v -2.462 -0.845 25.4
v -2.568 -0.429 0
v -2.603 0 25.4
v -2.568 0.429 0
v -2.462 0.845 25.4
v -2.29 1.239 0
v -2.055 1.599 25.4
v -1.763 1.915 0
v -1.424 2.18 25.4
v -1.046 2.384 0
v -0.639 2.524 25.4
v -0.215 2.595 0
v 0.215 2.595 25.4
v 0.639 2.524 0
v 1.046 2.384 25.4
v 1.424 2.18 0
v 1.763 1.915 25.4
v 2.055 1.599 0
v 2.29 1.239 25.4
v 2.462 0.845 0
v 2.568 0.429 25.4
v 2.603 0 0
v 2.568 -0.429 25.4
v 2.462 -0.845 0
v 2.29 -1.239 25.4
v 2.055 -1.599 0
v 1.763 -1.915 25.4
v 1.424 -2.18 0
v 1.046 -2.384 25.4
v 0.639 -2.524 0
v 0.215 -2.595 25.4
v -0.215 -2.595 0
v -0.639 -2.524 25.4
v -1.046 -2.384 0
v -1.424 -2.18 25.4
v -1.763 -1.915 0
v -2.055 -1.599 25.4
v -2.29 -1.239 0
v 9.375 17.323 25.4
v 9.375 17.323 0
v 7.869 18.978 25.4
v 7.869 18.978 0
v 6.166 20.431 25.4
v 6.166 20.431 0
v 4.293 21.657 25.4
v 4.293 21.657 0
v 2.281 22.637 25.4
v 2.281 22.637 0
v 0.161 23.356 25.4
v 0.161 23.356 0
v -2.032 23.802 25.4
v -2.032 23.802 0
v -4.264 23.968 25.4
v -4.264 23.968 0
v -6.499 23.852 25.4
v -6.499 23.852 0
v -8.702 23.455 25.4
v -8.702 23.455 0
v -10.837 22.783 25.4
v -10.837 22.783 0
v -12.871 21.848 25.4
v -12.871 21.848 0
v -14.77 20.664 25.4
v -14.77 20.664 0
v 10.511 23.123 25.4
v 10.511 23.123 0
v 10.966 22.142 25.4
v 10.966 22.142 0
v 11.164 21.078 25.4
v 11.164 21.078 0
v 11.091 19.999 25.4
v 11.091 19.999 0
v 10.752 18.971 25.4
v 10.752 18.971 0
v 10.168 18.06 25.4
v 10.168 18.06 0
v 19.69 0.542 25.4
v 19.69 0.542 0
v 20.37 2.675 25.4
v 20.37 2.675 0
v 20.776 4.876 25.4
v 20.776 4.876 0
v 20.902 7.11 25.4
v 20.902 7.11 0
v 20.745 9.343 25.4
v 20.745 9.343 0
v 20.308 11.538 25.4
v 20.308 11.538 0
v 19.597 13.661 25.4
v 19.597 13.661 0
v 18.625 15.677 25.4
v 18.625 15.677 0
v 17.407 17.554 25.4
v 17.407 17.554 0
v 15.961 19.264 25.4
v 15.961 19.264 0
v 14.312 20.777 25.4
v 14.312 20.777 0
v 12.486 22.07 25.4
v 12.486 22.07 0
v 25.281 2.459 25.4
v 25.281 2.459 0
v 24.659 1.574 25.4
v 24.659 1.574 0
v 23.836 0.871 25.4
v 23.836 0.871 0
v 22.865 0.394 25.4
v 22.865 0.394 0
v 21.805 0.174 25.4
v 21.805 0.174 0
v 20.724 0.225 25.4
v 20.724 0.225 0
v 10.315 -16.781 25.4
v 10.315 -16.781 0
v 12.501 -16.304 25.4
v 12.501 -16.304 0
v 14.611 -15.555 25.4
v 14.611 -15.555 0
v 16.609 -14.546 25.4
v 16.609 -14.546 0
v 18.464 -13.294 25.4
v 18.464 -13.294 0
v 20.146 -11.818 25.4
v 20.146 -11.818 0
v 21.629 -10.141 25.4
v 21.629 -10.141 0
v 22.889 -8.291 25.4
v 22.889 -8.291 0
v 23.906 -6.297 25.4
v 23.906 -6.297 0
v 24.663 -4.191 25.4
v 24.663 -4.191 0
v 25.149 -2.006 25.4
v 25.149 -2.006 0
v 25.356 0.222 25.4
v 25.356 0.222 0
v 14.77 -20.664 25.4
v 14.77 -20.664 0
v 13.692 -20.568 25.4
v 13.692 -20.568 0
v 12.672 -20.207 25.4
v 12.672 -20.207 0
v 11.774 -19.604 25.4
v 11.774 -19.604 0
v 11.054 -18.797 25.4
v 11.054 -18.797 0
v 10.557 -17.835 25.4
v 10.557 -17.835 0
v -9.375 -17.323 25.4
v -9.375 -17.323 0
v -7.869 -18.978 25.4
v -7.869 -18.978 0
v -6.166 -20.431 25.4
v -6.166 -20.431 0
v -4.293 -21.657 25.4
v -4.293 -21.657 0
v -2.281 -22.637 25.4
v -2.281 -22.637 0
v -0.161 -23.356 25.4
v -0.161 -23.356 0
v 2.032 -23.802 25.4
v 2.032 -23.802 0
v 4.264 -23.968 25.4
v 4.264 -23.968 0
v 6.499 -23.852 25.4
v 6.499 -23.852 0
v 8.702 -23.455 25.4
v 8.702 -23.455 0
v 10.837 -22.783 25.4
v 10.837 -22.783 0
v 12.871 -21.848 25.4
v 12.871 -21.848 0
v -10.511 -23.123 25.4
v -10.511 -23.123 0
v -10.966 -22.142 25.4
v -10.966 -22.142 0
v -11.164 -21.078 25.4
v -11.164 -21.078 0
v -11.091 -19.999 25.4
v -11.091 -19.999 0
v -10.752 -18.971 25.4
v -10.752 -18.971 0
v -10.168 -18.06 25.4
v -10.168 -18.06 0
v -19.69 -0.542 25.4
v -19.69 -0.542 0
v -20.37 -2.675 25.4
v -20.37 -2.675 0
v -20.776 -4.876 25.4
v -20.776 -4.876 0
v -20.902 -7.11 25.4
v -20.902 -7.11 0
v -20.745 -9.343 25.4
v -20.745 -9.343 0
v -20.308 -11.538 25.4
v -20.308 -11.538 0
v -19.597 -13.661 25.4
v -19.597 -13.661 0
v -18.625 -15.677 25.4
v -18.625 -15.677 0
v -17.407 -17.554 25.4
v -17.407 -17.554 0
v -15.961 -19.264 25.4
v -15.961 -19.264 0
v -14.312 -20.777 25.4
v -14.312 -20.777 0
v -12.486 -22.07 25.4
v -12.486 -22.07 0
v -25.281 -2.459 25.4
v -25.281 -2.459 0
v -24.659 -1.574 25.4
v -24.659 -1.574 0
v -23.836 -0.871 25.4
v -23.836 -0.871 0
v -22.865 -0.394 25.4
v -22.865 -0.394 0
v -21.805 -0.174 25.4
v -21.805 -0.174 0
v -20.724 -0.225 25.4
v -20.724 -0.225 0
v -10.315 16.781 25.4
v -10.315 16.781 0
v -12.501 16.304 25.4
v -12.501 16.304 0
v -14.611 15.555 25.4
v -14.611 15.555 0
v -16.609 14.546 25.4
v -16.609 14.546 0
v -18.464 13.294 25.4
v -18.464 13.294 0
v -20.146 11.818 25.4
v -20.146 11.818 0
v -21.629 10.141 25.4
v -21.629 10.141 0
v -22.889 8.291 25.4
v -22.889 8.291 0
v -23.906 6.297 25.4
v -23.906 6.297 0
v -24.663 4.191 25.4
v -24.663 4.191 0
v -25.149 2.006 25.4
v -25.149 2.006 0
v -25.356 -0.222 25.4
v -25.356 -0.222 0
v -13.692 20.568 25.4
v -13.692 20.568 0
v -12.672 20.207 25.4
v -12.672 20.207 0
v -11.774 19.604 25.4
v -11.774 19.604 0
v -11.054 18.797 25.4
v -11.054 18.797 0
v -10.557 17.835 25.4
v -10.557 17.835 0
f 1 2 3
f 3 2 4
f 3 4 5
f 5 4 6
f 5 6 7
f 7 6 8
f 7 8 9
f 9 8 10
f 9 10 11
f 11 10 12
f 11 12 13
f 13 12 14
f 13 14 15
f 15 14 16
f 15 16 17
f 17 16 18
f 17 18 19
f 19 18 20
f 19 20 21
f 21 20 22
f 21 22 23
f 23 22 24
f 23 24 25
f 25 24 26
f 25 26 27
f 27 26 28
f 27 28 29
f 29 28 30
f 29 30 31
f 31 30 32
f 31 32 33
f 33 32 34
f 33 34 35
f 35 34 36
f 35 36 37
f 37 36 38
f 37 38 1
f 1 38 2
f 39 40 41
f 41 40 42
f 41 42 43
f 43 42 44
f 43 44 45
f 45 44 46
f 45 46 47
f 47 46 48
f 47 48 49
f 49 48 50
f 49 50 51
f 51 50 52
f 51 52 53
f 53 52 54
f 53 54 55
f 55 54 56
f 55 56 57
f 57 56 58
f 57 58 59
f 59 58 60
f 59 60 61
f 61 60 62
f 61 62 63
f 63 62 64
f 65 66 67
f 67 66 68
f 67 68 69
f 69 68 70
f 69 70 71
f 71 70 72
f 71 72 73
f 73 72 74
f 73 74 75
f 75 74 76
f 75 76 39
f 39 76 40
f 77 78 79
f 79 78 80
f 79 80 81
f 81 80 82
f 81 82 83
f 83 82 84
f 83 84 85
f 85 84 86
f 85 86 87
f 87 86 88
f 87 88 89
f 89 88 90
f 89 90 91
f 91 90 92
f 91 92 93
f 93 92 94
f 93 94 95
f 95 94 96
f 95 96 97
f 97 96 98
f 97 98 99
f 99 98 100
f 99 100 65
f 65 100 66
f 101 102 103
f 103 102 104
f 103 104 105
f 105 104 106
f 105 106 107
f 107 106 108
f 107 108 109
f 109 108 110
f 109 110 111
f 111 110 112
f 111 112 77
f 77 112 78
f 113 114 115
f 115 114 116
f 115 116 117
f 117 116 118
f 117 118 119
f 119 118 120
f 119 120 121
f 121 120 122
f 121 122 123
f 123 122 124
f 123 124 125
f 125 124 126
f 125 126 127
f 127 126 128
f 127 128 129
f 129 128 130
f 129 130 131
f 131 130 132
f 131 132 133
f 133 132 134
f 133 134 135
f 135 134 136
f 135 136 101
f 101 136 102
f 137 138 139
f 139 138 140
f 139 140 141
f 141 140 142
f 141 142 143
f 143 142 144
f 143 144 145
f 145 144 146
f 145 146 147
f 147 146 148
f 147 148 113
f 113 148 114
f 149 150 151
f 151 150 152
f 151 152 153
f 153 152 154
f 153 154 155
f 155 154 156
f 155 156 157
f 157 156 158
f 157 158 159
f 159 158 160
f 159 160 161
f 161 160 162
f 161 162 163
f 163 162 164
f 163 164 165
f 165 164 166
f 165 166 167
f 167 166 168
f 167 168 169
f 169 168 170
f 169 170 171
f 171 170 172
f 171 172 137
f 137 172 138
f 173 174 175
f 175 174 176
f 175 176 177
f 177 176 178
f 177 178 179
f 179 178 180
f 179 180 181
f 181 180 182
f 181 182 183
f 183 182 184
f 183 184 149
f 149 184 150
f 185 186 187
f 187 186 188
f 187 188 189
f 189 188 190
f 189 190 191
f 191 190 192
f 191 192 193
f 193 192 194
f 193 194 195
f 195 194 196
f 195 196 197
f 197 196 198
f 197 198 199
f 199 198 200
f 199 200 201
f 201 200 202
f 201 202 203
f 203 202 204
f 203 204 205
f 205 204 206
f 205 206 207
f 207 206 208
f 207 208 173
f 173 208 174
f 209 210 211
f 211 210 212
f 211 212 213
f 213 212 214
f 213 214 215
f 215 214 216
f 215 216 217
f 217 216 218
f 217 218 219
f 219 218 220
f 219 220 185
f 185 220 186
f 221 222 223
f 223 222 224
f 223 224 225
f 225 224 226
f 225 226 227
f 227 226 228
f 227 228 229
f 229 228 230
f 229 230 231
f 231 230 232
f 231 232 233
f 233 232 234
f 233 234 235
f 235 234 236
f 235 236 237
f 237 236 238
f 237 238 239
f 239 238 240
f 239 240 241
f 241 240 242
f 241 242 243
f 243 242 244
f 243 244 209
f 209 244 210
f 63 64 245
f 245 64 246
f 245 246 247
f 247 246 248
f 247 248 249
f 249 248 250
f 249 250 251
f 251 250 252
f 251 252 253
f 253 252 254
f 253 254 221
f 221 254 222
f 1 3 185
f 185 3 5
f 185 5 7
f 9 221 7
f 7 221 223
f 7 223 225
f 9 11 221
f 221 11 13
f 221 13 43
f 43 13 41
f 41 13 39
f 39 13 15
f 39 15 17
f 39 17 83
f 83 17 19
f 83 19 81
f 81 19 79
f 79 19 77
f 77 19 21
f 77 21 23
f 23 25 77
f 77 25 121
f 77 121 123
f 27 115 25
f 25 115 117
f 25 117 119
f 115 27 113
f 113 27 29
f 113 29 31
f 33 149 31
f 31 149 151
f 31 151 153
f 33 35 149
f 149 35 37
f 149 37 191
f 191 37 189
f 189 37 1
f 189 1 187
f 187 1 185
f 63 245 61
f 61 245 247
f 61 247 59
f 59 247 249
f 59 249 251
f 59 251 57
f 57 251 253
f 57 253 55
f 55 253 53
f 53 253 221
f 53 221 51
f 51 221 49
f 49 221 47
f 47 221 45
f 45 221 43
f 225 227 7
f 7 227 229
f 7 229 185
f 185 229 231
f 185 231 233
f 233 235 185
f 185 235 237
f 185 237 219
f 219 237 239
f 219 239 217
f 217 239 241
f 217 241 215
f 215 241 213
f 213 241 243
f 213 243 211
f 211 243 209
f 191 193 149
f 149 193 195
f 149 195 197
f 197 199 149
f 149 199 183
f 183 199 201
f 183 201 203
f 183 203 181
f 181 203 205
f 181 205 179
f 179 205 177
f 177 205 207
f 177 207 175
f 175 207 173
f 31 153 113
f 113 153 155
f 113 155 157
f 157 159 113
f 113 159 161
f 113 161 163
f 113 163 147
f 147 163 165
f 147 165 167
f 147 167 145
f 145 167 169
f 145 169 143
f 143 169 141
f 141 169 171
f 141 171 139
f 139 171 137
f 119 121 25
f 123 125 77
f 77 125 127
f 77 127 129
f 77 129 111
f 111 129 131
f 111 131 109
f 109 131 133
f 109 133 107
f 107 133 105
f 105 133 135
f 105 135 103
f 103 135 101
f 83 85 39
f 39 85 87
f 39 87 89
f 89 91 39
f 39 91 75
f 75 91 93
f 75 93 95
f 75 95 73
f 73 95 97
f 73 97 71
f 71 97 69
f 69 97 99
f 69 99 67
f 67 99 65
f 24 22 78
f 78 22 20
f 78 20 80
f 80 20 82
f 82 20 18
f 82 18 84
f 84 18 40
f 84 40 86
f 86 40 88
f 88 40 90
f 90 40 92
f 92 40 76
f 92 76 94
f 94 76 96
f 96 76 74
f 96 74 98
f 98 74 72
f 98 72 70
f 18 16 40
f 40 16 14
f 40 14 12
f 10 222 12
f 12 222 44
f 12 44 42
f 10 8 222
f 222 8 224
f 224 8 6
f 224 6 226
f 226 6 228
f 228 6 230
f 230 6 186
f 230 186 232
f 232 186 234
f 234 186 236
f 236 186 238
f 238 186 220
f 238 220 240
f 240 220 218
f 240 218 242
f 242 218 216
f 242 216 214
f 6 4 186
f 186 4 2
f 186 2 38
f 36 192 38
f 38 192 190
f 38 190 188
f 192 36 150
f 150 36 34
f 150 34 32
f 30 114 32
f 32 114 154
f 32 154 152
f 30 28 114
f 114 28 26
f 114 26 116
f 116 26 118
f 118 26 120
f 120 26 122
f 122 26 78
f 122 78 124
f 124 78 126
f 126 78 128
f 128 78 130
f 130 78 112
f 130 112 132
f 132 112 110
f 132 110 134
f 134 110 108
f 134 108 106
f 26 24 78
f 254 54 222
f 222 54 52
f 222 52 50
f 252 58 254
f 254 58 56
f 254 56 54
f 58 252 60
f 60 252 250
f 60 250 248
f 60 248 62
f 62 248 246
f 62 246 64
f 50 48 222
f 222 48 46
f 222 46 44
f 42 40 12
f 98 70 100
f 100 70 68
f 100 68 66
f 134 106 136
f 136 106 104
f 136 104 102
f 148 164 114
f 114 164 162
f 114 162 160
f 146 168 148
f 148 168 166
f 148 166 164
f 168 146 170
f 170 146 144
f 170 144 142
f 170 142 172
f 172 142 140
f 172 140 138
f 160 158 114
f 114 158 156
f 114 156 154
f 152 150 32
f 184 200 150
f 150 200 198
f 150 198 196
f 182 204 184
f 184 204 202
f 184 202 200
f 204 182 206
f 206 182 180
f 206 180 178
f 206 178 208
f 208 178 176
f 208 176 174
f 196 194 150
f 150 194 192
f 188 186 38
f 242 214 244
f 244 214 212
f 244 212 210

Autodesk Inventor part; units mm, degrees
ref_plane "YZ Plane" through (0, 0, 0) normal (1, 0, 0) x (0, 1, 0)
ref_plane "XZ Plane" through (0, 0, 0) normal (0, 1, 0) x (-1, 0, 0)
ref_plane "XY Plane" through (0, 0, 0) normal (0, 0, 1) x (1, 0, 0)
sketch "Sketch1" plane through (0, 0, 0) normal (0, 0, 1) x (1, 0, 0)
  circle A0 centre (0, 0) radius 25.4 construction
  circle A1 centre (0, 0) radius 19.05
  arc A2 (19.0262, -0.952) -> (10.5106, 23.1233) centre (3.175, 6.985) ccw
  arc A3 (8.7227, 16.9357) -> (10.5106, 23.1233) centre (6.8532, 20.828) ccw
  arc A4 (-10.3054, 16.0219) -> (-14.7701, 20.6641) centre (-14.611, 16.349) ccw
  arc A5 (10.3375, 16.0012) -> (-14.7701, 20.6641) centre (-4.4617, 6.2421) ccw
  arc A6 (-19.0281, -0.9138) -> (-25.2807, -2.4592) centre (-21.4642, -4.479) ccw
  arc A7 (-8.6887, 16.9532) -> (-25.2807, -2.4592) centre (-7.6367, -0.7429) ccw
  arc A8 (-8.7227, -16.9357) -> (-10.5106, -23.1233) centre (-6.8532, -20.828) ccw
  arc A9 (-19.0262, 0.952) -> (-10.5106, -23.1233) centre (-3.175, -6.985) ccw
  arc A10 (10.3054, -16.0219) -> (14.7701, -20.6641) centre (14.611, -16.349) ccw
  arc A11 (-10.3375, -16.0012) -> (14.7701, -20.6641) centre (4.4617, -6.2421) ccw
  arc A12 (19.0281, 0.9138) -> (25.2807, 2.4592) centre (21.4642, 4.479) ccw
  arc A13 (8.6887, -16.9532) -> (25.2807, 2.4592) centre (7.6367, 0.7429) ccw
  circle A14 centre (0, 0) radius 2.6035
  point P0 (9.3754, 17.3232)
  point P1 (-10.3146, 16.781)
  point P2 (-19.6901, -0.5423)
  point P3 (-9.3754, -17.3232)
  point P4 (10.3146, -16.781)
  point P5 (19.6901, 0.5423)
  dimension "d0" = 50.8
  dimension "d1" = 38.1
  dimension "d3" = 4.318
  dimension "d4" = 6.985
  dimension "d5" = 3.175
  dimension "d6" = 20.828
  dimension "d9" = 360
  dimension "d11" = 5.207
extrude "Extrusion1" add sketch "Sketch1" along normal blind 25.4 contours A1 | A1 A12 A2 | A1 A5 A3 A2 A12 | A2 A12 A13 A10 A1 | A1 A3 A5 | A10 A13 A1 | A1 A7 A4 A5 A3 | A13 A10 A11 A8 A1 | A1 A4 A7 | A8 A11 A1 | A1 A9 A6 A7 A4 | A11 A8 A9 A6 A1 | A1 A6 A9 | A14
extrude "Extrusion2" cut sketch "Sketch1" along normal through all contours A14
properties part number "THE_WHEEL"
